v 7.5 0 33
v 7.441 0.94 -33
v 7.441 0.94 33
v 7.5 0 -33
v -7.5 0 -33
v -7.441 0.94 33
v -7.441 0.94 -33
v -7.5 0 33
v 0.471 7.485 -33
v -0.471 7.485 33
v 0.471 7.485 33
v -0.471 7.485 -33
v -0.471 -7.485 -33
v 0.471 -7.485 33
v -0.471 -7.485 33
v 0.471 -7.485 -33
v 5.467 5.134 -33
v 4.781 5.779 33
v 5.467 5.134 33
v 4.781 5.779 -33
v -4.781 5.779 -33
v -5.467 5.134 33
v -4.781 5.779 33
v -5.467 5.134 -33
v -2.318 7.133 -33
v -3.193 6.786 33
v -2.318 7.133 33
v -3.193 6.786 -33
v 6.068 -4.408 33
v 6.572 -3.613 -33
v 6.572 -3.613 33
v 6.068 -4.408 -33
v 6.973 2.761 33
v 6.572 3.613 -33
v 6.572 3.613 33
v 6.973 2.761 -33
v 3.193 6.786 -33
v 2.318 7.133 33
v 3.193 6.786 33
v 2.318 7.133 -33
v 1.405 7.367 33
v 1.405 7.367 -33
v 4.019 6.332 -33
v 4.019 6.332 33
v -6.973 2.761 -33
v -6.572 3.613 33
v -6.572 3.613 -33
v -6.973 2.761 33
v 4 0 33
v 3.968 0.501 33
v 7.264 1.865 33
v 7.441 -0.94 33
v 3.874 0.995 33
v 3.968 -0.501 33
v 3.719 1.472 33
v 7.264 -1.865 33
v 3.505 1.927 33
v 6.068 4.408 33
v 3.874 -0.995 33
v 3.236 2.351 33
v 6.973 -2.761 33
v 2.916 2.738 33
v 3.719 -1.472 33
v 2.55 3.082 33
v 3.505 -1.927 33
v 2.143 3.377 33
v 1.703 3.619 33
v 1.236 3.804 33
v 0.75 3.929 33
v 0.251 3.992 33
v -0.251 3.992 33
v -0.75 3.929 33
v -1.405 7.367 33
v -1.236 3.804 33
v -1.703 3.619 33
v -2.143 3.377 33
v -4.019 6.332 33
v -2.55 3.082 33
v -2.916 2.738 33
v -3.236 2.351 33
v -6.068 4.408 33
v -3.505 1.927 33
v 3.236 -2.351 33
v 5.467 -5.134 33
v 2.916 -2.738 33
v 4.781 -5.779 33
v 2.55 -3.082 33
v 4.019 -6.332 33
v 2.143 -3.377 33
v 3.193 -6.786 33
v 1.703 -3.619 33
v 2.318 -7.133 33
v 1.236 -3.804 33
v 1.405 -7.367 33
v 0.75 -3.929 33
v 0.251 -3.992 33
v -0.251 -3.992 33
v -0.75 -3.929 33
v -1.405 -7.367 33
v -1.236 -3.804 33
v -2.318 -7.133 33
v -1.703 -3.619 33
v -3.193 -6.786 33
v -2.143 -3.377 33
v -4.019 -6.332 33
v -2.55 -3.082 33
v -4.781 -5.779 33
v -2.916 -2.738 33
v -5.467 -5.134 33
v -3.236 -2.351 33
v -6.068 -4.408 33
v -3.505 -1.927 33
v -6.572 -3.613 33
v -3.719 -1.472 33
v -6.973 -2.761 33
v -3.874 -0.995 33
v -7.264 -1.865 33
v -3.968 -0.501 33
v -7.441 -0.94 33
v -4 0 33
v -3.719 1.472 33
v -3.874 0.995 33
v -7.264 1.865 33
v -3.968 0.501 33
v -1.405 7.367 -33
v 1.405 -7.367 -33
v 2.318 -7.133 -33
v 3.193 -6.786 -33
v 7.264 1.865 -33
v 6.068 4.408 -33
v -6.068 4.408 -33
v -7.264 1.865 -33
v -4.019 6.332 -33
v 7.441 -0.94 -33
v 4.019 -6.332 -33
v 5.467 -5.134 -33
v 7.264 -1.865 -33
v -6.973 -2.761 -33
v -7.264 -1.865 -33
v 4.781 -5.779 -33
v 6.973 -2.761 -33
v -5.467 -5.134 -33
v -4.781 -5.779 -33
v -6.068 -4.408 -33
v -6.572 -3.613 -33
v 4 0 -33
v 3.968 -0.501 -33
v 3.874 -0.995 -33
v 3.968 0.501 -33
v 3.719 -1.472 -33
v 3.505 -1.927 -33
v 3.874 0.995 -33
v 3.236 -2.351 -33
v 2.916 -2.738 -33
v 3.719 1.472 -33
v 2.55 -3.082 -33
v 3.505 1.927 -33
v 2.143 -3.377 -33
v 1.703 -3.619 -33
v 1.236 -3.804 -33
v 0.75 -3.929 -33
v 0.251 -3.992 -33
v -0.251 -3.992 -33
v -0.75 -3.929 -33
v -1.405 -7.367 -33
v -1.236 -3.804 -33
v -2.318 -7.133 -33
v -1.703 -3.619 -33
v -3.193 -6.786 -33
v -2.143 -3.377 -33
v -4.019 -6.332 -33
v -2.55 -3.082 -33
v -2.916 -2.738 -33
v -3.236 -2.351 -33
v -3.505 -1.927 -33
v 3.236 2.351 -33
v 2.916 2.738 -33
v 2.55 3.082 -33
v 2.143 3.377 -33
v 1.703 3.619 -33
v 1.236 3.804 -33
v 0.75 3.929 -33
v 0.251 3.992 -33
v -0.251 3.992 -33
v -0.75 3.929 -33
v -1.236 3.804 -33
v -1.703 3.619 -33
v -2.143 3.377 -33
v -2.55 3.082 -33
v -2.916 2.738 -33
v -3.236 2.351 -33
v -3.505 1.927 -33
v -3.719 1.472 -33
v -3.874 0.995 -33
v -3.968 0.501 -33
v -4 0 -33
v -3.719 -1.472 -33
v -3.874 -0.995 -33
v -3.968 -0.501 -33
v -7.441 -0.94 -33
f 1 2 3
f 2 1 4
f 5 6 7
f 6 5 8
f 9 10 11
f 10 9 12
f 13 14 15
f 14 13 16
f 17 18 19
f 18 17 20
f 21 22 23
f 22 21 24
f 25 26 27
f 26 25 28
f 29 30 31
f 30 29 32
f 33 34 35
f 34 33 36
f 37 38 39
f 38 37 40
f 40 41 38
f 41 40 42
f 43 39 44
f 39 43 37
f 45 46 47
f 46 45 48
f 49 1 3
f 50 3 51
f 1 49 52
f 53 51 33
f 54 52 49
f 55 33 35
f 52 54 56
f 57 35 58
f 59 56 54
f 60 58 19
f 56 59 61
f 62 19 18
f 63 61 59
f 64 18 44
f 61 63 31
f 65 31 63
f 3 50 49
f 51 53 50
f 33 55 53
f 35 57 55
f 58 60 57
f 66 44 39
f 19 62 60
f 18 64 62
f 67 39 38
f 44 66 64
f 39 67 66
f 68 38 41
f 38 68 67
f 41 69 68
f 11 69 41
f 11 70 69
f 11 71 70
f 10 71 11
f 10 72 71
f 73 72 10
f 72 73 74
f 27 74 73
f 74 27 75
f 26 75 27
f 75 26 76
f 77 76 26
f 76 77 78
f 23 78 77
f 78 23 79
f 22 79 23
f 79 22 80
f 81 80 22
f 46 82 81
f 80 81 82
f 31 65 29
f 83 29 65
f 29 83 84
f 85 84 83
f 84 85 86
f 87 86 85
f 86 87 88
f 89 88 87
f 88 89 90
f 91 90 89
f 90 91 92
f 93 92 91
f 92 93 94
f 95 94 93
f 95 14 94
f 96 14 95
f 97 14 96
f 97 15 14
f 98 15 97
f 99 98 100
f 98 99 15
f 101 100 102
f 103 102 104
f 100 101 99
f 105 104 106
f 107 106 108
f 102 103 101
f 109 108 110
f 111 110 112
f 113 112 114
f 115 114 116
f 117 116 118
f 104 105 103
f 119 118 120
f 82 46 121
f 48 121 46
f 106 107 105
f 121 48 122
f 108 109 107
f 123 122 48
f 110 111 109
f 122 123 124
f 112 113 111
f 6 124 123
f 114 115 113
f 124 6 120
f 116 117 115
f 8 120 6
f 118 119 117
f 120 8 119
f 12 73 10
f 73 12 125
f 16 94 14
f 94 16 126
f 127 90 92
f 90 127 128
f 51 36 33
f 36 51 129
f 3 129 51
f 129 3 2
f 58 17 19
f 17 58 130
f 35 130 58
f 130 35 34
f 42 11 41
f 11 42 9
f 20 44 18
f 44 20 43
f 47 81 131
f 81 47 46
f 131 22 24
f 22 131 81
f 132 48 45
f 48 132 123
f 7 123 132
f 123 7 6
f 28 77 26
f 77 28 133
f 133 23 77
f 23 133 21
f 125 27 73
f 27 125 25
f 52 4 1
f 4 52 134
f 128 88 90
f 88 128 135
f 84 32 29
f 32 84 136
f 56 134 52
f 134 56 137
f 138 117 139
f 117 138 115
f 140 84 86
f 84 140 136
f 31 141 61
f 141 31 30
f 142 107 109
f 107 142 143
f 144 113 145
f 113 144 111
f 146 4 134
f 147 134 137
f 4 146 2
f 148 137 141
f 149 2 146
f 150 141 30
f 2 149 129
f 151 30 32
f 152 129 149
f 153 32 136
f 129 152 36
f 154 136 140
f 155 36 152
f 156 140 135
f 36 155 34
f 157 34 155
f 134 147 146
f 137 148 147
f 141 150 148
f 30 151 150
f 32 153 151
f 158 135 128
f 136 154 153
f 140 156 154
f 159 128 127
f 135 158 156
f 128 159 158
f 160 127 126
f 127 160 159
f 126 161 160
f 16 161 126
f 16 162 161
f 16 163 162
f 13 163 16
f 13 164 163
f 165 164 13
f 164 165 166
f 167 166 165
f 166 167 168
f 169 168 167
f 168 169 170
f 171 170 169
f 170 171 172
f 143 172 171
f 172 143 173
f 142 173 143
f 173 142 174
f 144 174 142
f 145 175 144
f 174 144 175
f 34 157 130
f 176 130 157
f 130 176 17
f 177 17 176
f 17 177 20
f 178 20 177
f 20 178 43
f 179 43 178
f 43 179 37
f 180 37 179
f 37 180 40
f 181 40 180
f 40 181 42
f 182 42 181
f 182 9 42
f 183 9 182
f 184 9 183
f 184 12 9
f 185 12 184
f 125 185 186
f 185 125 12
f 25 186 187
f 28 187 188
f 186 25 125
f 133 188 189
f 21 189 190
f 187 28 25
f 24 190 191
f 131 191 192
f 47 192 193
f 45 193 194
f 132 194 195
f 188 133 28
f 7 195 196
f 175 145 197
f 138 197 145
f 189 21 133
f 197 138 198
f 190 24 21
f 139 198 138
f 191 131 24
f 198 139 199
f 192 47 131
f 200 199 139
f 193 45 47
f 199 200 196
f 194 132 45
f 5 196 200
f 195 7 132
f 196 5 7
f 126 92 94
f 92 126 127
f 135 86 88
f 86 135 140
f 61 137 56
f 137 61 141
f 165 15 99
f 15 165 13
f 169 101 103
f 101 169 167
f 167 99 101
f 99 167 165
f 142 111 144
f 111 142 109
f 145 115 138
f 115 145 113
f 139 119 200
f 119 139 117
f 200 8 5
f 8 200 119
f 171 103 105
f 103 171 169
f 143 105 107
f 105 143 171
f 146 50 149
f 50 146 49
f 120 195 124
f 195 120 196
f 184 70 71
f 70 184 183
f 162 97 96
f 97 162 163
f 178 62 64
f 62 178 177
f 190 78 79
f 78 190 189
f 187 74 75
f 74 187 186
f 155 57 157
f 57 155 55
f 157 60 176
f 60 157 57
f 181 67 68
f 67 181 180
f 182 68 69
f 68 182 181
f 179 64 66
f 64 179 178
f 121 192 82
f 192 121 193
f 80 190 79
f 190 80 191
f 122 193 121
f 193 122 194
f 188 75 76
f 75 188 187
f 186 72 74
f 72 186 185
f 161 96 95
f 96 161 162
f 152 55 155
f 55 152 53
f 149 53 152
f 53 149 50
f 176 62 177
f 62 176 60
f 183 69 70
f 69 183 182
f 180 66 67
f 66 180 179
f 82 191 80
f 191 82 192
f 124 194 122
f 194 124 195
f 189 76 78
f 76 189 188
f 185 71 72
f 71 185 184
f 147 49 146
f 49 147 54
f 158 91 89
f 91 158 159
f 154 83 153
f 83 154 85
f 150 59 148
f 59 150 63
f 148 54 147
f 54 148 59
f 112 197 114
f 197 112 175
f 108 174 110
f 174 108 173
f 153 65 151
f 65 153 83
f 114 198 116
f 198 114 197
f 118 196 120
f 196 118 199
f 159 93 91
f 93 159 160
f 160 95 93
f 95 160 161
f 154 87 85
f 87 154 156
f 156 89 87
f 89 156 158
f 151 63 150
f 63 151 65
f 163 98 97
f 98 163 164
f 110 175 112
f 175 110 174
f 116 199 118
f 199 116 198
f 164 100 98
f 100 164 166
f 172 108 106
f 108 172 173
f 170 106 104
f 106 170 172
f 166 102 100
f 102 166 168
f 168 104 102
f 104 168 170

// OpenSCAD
$fn = 50;


difference() {
	union() {
		translate(v = [0, 0, -33.0000000000]) {
			cylinder(h = 66, r = 7.5000000000);
		}
	}
	union() {
		translate(v = [0, 0, -100.0000000000]) {
			cylinder(h = 200, r = 4.0000000000);
		}
	}
}
